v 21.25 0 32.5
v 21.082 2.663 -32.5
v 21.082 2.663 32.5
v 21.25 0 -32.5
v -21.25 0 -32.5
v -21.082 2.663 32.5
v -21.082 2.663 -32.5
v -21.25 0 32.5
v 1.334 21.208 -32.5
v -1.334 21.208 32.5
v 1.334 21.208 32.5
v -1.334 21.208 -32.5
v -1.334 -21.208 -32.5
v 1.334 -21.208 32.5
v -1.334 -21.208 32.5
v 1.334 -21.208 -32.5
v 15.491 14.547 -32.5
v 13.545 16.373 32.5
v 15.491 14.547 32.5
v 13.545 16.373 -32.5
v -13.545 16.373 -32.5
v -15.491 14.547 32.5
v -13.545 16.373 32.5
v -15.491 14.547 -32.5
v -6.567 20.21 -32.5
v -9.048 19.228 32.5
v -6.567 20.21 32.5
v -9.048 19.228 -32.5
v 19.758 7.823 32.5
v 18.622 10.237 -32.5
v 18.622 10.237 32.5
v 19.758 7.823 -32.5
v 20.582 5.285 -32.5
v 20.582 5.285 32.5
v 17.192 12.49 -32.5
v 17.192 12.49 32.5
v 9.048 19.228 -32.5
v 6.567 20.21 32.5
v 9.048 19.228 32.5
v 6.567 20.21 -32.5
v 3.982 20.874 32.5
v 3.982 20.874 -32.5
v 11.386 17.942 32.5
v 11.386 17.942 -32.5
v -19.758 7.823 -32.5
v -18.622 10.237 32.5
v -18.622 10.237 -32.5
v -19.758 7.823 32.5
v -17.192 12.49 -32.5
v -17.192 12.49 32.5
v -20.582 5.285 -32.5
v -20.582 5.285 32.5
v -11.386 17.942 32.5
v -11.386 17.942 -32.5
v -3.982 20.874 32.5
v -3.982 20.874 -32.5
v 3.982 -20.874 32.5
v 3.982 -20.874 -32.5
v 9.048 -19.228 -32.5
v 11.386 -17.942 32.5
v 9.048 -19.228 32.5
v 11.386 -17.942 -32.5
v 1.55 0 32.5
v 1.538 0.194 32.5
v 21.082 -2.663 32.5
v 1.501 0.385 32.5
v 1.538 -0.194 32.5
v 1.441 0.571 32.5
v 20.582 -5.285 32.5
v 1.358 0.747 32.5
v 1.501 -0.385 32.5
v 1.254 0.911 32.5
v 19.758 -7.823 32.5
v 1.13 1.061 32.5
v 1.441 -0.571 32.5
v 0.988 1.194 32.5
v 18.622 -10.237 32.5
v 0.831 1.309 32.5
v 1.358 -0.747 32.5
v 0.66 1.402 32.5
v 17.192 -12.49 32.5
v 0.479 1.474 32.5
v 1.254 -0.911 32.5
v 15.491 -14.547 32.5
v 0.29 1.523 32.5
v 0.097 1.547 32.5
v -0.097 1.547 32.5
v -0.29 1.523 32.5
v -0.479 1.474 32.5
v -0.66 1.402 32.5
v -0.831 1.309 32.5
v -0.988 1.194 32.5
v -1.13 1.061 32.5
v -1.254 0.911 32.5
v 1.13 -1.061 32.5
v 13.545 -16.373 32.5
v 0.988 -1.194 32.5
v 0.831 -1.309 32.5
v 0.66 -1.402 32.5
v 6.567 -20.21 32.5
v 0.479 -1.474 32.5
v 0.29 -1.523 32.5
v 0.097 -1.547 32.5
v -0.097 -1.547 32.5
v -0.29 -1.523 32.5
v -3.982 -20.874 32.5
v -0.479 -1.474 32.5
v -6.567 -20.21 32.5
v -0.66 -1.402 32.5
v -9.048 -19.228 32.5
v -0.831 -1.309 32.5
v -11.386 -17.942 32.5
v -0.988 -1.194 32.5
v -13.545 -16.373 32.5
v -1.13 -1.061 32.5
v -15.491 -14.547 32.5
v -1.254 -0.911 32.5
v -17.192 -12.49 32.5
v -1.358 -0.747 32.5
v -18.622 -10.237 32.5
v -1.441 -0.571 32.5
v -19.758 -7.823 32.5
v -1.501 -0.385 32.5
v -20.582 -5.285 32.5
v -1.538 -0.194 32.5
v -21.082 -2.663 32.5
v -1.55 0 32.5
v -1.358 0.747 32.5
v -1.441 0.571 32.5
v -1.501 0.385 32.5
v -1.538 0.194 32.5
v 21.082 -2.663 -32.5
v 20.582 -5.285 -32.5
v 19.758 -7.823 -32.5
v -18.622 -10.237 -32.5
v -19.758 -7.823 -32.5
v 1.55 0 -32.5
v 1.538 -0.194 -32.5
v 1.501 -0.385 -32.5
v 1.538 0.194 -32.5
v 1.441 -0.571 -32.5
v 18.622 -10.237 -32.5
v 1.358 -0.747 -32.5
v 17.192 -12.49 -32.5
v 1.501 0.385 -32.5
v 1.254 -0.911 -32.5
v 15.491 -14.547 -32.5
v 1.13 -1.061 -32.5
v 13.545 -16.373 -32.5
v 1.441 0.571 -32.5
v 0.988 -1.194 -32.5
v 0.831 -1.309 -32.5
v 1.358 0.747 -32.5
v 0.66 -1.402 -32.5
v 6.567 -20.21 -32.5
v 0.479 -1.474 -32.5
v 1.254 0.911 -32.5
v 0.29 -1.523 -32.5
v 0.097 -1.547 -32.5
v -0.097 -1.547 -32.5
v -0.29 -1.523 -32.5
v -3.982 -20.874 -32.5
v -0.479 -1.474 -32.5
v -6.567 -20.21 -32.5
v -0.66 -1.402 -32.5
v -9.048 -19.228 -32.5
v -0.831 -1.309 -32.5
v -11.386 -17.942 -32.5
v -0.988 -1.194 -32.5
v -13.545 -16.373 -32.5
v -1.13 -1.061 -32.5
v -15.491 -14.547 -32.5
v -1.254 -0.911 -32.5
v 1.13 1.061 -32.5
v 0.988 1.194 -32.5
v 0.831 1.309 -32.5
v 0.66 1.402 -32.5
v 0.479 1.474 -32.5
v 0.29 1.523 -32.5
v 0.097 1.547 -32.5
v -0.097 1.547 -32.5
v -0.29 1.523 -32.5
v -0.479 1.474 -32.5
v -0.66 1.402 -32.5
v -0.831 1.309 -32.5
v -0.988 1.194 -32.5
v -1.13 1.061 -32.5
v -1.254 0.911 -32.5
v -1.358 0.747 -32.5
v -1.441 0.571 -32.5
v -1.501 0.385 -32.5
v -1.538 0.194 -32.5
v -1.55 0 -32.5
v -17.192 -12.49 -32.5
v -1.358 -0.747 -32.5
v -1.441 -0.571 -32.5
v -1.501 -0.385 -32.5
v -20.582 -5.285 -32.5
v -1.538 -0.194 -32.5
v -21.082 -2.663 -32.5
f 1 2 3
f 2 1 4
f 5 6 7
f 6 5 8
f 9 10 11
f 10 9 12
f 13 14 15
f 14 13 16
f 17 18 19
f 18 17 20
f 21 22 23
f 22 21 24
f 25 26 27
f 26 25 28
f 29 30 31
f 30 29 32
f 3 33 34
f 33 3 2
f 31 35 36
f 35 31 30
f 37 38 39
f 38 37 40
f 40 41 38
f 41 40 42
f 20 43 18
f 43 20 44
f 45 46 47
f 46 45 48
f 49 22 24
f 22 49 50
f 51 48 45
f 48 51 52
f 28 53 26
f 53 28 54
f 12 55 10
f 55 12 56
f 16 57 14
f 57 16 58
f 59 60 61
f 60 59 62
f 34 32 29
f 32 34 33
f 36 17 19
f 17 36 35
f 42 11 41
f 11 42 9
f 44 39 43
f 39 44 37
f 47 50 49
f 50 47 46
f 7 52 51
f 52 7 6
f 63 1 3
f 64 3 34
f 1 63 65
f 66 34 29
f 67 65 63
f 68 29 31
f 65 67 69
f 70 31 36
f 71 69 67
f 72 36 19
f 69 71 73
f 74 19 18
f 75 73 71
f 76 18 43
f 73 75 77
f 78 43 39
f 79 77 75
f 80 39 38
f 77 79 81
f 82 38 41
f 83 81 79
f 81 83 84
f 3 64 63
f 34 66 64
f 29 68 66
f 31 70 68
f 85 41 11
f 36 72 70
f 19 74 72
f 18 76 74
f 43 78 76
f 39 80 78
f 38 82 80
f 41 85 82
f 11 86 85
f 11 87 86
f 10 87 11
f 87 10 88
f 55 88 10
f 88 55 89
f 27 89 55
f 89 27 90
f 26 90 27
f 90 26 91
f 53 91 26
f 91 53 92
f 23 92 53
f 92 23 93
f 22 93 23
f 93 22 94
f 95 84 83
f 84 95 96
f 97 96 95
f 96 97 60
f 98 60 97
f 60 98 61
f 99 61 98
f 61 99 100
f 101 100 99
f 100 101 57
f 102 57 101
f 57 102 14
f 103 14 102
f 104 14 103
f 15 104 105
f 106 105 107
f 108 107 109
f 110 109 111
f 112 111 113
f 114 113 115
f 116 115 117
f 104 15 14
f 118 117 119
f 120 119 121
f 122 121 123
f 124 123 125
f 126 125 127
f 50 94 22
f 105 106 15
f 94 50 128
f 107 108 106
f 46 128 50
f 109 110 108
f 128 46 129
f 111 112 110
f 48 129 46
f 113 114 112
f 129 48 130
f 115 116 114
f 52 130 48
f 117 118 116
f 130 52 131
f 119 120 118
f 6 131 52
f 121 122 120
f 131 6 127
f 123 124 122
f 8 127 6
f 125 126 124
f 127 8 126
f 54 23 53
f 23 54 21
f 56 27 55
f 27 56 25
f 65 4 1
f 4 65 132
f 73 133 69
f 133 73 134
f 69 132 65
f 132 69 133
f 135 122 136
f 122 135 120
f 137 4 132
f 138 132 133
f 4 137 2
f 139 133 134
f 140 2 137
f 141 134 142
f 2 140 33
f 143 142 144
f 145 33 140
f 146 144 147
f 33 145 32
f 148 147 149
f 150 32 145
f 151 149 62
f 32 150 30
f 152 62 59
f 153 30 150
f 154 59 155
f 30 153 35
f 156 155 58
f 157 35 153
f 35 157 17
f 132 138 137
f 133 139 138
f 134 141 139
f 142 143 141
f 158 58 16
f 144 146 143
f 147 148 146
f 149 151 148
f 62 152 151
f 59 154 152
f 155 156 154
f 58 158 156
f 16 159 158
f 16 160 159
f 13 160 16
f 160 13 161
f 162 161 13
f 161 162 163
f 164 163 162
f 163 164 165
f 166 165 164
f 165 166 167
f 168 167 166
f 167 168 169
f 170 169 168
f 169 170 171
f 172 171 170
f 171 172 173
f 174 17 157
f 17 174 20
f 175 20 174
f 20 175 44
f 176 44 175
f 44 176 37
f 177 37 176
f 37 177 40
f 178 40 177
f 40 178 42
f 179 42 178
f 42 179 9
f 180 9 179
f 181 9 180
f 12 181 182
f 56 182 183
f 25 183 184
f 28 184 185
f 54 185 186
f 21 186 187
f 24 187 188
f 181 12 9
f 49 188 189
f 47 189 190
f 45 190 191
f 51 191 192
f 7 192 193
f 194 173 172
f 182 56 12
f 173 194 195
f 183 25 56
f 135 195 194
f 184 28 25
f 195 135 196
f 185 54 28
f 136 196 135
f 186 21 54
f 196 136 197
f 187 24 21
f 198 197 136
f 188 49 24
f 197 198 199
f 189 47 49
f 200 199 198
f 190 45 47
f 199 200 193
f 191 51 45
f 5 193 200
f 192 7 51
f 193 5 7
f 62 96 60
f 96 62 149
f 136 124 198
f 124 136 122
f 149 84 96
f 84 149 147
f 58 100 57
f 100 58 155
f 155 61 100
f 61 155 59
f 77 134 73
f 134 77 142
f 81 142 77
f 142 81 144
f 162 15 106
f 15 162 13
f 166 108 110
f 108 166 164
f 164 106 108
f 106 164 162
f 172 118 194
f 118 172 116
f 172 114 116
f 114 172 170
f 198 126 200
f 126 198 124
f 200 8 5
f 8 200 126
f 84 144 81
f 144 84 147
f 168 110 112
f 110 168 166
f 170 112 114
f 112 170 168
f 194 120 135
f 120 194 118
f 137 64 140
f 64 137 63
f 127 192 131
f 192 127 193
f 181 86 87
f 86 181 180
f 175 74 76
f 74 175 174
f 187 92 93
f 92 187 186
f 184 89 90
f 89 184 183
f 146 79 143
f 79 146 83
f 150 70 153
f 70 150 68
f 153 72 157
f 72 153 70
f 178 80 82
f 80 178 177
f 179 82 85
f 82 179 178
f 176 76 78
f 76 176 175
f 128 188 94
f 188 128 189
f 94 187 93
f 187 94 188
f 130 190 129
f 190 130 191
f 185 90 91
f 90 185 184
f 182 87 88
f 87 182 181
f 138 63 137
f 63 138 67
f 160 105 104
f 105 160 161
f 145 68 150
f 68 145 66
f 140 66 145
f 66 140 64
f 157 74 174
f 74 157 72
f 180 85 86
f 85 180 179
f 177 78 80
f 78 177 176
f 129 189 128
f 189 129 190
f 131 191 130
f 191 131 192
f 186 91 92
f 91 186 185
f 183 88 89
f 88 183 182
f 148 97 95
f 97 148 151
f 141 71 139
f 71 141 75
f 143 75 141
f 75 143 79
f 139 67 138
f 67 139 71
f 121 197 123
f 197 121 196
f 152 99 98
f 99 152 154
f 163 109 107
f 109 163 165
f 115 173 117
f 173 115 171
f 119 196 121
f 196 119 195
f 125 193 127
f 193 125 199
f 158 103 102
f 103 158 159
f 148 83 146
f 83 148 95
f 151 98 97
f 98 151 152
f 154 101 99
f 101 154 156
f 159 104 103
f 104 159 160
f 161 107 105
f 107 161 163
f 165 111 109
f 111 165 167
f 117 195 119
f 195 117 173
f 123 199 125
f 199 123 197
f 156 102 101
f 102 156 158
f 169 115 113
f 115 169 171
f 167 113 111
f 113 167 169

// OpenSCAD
$fn = 50;


difference() {
	union() {
		translate(v = [0, 0, -32.5000000000]) {
			cylinder(h = 65, r = 21.2500000000);
		}
	}
	union() {
		translate(v = [0, 0, -100.0000000000]) {
			cylinder(h = 200, r = 1.5500000000);
		}
	}
}
